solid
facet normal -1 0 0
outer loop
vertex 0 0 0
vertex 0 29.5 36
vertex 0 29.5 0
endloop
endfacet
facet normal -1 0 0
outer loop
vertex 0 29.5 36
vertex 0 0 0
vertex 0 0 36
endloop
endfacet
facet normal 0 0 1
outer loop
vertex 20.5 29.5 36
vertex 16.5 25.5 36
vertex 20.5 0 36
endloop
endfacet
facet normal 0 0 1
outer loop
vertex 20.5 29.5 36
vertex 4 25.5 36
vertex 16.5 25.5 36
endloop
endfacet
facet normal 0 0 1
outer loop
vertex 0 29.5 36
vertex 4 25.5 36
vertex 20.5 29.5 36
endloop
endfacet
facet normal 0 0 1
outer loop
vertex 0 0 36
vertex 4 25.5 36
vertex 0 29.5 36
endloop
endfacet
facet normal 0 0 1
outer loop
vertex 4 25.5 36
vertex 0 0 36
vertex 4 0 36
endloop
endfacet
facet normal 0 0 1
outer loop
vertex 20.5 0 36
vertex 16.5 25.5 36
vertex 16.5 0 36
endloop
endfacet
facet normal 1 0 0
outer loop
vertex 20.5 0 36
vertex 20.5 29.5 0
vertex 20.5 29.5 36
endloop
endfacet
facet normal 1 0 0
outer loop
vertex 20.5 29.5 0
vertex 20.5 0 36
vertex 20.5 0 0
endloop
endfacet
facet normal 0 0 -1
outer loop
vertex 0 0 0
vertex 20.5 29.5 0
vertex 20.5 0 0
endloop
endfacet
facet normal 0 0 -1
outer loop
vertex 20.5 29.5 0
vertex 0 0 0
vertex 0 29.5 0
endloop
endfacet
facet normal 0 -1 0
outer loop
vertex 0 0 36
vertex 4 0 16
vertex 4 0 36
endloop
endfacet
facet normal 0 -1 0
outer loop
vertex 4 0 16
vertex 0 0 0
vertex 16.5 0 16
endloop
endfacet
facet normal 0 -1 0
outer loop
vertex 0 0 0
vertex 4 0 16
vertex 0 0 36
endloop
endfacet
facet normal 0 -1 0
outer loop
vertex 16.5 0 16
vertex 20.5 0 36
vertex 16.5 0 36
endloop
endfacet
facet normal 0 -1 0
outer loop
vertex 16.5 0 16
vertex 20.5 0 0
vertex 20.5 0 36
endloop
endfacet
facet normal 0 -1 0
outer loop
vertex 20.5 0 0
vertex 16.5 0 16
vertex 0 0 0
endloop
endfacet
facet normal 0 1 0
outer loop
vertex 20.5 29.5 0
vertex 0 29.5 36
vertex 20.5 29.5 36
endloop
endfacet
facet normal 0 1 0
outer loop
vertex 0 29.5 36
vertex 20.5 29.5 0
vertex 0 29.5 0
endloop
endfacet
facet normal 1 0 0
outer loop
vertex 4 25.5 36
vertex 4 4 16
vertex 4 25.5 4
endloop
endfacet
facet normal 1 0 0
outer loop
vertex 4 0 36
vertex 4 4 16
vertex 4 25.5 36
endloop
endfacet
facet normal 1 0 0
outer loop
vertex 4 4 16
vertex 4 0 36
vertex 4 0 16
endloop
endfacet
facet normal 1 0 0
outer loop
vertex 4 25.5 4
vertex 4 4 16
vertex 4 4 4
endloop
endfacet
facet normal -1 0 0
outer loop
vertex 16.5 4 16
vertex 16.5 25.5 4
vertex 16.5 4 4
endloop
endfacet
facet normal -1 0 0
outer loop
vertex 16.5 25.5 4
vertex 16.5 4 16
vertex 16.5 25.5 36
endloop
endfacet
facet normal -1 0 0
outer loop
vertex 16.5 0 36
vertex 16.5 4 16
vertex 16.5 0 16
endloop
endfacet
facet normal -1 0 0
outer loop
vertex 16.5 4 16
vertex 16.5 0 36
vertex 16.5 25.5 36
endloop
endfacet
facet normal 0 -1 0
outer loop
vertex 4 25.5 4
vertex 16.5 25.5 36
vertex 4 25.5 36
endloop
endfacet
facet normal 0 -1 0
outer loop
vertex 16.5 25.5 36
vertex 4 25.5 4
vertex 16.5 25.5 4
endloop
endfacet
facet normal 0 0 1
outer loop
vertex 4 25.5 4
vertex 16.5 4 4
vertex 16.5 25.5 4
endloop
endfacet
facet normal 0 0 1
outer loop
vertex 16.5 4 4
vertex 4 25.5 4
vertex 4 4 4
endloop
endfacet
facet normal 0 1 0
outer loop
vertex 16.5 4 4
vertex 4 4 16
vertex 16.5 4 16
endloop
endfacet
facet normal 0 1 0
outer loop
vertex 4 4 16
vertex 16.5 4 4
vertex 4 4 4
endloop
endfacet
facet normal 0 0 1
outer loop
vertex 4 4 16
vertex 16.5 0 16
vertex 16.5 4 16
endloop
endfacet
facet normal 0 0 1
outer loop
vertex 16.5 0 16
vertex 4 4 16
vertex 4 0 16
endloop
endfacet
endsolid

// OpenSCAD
//cube ([115,5,90]);

// 4.5 in long, 3.5 in high, 115 x 90





// motor hole 12.5 wide, 21.5 deep, 32 high
// motor box  20.5 wide, 29.5 deep, 36 high

color("red")
difference() {
    cube([20.5, 29.5, 36]);
    translate([4,4,4])
    cube([12.5, 21.5, 33]);
    translate([4,-1,16])
    cube([12.5,10,30]);
}
